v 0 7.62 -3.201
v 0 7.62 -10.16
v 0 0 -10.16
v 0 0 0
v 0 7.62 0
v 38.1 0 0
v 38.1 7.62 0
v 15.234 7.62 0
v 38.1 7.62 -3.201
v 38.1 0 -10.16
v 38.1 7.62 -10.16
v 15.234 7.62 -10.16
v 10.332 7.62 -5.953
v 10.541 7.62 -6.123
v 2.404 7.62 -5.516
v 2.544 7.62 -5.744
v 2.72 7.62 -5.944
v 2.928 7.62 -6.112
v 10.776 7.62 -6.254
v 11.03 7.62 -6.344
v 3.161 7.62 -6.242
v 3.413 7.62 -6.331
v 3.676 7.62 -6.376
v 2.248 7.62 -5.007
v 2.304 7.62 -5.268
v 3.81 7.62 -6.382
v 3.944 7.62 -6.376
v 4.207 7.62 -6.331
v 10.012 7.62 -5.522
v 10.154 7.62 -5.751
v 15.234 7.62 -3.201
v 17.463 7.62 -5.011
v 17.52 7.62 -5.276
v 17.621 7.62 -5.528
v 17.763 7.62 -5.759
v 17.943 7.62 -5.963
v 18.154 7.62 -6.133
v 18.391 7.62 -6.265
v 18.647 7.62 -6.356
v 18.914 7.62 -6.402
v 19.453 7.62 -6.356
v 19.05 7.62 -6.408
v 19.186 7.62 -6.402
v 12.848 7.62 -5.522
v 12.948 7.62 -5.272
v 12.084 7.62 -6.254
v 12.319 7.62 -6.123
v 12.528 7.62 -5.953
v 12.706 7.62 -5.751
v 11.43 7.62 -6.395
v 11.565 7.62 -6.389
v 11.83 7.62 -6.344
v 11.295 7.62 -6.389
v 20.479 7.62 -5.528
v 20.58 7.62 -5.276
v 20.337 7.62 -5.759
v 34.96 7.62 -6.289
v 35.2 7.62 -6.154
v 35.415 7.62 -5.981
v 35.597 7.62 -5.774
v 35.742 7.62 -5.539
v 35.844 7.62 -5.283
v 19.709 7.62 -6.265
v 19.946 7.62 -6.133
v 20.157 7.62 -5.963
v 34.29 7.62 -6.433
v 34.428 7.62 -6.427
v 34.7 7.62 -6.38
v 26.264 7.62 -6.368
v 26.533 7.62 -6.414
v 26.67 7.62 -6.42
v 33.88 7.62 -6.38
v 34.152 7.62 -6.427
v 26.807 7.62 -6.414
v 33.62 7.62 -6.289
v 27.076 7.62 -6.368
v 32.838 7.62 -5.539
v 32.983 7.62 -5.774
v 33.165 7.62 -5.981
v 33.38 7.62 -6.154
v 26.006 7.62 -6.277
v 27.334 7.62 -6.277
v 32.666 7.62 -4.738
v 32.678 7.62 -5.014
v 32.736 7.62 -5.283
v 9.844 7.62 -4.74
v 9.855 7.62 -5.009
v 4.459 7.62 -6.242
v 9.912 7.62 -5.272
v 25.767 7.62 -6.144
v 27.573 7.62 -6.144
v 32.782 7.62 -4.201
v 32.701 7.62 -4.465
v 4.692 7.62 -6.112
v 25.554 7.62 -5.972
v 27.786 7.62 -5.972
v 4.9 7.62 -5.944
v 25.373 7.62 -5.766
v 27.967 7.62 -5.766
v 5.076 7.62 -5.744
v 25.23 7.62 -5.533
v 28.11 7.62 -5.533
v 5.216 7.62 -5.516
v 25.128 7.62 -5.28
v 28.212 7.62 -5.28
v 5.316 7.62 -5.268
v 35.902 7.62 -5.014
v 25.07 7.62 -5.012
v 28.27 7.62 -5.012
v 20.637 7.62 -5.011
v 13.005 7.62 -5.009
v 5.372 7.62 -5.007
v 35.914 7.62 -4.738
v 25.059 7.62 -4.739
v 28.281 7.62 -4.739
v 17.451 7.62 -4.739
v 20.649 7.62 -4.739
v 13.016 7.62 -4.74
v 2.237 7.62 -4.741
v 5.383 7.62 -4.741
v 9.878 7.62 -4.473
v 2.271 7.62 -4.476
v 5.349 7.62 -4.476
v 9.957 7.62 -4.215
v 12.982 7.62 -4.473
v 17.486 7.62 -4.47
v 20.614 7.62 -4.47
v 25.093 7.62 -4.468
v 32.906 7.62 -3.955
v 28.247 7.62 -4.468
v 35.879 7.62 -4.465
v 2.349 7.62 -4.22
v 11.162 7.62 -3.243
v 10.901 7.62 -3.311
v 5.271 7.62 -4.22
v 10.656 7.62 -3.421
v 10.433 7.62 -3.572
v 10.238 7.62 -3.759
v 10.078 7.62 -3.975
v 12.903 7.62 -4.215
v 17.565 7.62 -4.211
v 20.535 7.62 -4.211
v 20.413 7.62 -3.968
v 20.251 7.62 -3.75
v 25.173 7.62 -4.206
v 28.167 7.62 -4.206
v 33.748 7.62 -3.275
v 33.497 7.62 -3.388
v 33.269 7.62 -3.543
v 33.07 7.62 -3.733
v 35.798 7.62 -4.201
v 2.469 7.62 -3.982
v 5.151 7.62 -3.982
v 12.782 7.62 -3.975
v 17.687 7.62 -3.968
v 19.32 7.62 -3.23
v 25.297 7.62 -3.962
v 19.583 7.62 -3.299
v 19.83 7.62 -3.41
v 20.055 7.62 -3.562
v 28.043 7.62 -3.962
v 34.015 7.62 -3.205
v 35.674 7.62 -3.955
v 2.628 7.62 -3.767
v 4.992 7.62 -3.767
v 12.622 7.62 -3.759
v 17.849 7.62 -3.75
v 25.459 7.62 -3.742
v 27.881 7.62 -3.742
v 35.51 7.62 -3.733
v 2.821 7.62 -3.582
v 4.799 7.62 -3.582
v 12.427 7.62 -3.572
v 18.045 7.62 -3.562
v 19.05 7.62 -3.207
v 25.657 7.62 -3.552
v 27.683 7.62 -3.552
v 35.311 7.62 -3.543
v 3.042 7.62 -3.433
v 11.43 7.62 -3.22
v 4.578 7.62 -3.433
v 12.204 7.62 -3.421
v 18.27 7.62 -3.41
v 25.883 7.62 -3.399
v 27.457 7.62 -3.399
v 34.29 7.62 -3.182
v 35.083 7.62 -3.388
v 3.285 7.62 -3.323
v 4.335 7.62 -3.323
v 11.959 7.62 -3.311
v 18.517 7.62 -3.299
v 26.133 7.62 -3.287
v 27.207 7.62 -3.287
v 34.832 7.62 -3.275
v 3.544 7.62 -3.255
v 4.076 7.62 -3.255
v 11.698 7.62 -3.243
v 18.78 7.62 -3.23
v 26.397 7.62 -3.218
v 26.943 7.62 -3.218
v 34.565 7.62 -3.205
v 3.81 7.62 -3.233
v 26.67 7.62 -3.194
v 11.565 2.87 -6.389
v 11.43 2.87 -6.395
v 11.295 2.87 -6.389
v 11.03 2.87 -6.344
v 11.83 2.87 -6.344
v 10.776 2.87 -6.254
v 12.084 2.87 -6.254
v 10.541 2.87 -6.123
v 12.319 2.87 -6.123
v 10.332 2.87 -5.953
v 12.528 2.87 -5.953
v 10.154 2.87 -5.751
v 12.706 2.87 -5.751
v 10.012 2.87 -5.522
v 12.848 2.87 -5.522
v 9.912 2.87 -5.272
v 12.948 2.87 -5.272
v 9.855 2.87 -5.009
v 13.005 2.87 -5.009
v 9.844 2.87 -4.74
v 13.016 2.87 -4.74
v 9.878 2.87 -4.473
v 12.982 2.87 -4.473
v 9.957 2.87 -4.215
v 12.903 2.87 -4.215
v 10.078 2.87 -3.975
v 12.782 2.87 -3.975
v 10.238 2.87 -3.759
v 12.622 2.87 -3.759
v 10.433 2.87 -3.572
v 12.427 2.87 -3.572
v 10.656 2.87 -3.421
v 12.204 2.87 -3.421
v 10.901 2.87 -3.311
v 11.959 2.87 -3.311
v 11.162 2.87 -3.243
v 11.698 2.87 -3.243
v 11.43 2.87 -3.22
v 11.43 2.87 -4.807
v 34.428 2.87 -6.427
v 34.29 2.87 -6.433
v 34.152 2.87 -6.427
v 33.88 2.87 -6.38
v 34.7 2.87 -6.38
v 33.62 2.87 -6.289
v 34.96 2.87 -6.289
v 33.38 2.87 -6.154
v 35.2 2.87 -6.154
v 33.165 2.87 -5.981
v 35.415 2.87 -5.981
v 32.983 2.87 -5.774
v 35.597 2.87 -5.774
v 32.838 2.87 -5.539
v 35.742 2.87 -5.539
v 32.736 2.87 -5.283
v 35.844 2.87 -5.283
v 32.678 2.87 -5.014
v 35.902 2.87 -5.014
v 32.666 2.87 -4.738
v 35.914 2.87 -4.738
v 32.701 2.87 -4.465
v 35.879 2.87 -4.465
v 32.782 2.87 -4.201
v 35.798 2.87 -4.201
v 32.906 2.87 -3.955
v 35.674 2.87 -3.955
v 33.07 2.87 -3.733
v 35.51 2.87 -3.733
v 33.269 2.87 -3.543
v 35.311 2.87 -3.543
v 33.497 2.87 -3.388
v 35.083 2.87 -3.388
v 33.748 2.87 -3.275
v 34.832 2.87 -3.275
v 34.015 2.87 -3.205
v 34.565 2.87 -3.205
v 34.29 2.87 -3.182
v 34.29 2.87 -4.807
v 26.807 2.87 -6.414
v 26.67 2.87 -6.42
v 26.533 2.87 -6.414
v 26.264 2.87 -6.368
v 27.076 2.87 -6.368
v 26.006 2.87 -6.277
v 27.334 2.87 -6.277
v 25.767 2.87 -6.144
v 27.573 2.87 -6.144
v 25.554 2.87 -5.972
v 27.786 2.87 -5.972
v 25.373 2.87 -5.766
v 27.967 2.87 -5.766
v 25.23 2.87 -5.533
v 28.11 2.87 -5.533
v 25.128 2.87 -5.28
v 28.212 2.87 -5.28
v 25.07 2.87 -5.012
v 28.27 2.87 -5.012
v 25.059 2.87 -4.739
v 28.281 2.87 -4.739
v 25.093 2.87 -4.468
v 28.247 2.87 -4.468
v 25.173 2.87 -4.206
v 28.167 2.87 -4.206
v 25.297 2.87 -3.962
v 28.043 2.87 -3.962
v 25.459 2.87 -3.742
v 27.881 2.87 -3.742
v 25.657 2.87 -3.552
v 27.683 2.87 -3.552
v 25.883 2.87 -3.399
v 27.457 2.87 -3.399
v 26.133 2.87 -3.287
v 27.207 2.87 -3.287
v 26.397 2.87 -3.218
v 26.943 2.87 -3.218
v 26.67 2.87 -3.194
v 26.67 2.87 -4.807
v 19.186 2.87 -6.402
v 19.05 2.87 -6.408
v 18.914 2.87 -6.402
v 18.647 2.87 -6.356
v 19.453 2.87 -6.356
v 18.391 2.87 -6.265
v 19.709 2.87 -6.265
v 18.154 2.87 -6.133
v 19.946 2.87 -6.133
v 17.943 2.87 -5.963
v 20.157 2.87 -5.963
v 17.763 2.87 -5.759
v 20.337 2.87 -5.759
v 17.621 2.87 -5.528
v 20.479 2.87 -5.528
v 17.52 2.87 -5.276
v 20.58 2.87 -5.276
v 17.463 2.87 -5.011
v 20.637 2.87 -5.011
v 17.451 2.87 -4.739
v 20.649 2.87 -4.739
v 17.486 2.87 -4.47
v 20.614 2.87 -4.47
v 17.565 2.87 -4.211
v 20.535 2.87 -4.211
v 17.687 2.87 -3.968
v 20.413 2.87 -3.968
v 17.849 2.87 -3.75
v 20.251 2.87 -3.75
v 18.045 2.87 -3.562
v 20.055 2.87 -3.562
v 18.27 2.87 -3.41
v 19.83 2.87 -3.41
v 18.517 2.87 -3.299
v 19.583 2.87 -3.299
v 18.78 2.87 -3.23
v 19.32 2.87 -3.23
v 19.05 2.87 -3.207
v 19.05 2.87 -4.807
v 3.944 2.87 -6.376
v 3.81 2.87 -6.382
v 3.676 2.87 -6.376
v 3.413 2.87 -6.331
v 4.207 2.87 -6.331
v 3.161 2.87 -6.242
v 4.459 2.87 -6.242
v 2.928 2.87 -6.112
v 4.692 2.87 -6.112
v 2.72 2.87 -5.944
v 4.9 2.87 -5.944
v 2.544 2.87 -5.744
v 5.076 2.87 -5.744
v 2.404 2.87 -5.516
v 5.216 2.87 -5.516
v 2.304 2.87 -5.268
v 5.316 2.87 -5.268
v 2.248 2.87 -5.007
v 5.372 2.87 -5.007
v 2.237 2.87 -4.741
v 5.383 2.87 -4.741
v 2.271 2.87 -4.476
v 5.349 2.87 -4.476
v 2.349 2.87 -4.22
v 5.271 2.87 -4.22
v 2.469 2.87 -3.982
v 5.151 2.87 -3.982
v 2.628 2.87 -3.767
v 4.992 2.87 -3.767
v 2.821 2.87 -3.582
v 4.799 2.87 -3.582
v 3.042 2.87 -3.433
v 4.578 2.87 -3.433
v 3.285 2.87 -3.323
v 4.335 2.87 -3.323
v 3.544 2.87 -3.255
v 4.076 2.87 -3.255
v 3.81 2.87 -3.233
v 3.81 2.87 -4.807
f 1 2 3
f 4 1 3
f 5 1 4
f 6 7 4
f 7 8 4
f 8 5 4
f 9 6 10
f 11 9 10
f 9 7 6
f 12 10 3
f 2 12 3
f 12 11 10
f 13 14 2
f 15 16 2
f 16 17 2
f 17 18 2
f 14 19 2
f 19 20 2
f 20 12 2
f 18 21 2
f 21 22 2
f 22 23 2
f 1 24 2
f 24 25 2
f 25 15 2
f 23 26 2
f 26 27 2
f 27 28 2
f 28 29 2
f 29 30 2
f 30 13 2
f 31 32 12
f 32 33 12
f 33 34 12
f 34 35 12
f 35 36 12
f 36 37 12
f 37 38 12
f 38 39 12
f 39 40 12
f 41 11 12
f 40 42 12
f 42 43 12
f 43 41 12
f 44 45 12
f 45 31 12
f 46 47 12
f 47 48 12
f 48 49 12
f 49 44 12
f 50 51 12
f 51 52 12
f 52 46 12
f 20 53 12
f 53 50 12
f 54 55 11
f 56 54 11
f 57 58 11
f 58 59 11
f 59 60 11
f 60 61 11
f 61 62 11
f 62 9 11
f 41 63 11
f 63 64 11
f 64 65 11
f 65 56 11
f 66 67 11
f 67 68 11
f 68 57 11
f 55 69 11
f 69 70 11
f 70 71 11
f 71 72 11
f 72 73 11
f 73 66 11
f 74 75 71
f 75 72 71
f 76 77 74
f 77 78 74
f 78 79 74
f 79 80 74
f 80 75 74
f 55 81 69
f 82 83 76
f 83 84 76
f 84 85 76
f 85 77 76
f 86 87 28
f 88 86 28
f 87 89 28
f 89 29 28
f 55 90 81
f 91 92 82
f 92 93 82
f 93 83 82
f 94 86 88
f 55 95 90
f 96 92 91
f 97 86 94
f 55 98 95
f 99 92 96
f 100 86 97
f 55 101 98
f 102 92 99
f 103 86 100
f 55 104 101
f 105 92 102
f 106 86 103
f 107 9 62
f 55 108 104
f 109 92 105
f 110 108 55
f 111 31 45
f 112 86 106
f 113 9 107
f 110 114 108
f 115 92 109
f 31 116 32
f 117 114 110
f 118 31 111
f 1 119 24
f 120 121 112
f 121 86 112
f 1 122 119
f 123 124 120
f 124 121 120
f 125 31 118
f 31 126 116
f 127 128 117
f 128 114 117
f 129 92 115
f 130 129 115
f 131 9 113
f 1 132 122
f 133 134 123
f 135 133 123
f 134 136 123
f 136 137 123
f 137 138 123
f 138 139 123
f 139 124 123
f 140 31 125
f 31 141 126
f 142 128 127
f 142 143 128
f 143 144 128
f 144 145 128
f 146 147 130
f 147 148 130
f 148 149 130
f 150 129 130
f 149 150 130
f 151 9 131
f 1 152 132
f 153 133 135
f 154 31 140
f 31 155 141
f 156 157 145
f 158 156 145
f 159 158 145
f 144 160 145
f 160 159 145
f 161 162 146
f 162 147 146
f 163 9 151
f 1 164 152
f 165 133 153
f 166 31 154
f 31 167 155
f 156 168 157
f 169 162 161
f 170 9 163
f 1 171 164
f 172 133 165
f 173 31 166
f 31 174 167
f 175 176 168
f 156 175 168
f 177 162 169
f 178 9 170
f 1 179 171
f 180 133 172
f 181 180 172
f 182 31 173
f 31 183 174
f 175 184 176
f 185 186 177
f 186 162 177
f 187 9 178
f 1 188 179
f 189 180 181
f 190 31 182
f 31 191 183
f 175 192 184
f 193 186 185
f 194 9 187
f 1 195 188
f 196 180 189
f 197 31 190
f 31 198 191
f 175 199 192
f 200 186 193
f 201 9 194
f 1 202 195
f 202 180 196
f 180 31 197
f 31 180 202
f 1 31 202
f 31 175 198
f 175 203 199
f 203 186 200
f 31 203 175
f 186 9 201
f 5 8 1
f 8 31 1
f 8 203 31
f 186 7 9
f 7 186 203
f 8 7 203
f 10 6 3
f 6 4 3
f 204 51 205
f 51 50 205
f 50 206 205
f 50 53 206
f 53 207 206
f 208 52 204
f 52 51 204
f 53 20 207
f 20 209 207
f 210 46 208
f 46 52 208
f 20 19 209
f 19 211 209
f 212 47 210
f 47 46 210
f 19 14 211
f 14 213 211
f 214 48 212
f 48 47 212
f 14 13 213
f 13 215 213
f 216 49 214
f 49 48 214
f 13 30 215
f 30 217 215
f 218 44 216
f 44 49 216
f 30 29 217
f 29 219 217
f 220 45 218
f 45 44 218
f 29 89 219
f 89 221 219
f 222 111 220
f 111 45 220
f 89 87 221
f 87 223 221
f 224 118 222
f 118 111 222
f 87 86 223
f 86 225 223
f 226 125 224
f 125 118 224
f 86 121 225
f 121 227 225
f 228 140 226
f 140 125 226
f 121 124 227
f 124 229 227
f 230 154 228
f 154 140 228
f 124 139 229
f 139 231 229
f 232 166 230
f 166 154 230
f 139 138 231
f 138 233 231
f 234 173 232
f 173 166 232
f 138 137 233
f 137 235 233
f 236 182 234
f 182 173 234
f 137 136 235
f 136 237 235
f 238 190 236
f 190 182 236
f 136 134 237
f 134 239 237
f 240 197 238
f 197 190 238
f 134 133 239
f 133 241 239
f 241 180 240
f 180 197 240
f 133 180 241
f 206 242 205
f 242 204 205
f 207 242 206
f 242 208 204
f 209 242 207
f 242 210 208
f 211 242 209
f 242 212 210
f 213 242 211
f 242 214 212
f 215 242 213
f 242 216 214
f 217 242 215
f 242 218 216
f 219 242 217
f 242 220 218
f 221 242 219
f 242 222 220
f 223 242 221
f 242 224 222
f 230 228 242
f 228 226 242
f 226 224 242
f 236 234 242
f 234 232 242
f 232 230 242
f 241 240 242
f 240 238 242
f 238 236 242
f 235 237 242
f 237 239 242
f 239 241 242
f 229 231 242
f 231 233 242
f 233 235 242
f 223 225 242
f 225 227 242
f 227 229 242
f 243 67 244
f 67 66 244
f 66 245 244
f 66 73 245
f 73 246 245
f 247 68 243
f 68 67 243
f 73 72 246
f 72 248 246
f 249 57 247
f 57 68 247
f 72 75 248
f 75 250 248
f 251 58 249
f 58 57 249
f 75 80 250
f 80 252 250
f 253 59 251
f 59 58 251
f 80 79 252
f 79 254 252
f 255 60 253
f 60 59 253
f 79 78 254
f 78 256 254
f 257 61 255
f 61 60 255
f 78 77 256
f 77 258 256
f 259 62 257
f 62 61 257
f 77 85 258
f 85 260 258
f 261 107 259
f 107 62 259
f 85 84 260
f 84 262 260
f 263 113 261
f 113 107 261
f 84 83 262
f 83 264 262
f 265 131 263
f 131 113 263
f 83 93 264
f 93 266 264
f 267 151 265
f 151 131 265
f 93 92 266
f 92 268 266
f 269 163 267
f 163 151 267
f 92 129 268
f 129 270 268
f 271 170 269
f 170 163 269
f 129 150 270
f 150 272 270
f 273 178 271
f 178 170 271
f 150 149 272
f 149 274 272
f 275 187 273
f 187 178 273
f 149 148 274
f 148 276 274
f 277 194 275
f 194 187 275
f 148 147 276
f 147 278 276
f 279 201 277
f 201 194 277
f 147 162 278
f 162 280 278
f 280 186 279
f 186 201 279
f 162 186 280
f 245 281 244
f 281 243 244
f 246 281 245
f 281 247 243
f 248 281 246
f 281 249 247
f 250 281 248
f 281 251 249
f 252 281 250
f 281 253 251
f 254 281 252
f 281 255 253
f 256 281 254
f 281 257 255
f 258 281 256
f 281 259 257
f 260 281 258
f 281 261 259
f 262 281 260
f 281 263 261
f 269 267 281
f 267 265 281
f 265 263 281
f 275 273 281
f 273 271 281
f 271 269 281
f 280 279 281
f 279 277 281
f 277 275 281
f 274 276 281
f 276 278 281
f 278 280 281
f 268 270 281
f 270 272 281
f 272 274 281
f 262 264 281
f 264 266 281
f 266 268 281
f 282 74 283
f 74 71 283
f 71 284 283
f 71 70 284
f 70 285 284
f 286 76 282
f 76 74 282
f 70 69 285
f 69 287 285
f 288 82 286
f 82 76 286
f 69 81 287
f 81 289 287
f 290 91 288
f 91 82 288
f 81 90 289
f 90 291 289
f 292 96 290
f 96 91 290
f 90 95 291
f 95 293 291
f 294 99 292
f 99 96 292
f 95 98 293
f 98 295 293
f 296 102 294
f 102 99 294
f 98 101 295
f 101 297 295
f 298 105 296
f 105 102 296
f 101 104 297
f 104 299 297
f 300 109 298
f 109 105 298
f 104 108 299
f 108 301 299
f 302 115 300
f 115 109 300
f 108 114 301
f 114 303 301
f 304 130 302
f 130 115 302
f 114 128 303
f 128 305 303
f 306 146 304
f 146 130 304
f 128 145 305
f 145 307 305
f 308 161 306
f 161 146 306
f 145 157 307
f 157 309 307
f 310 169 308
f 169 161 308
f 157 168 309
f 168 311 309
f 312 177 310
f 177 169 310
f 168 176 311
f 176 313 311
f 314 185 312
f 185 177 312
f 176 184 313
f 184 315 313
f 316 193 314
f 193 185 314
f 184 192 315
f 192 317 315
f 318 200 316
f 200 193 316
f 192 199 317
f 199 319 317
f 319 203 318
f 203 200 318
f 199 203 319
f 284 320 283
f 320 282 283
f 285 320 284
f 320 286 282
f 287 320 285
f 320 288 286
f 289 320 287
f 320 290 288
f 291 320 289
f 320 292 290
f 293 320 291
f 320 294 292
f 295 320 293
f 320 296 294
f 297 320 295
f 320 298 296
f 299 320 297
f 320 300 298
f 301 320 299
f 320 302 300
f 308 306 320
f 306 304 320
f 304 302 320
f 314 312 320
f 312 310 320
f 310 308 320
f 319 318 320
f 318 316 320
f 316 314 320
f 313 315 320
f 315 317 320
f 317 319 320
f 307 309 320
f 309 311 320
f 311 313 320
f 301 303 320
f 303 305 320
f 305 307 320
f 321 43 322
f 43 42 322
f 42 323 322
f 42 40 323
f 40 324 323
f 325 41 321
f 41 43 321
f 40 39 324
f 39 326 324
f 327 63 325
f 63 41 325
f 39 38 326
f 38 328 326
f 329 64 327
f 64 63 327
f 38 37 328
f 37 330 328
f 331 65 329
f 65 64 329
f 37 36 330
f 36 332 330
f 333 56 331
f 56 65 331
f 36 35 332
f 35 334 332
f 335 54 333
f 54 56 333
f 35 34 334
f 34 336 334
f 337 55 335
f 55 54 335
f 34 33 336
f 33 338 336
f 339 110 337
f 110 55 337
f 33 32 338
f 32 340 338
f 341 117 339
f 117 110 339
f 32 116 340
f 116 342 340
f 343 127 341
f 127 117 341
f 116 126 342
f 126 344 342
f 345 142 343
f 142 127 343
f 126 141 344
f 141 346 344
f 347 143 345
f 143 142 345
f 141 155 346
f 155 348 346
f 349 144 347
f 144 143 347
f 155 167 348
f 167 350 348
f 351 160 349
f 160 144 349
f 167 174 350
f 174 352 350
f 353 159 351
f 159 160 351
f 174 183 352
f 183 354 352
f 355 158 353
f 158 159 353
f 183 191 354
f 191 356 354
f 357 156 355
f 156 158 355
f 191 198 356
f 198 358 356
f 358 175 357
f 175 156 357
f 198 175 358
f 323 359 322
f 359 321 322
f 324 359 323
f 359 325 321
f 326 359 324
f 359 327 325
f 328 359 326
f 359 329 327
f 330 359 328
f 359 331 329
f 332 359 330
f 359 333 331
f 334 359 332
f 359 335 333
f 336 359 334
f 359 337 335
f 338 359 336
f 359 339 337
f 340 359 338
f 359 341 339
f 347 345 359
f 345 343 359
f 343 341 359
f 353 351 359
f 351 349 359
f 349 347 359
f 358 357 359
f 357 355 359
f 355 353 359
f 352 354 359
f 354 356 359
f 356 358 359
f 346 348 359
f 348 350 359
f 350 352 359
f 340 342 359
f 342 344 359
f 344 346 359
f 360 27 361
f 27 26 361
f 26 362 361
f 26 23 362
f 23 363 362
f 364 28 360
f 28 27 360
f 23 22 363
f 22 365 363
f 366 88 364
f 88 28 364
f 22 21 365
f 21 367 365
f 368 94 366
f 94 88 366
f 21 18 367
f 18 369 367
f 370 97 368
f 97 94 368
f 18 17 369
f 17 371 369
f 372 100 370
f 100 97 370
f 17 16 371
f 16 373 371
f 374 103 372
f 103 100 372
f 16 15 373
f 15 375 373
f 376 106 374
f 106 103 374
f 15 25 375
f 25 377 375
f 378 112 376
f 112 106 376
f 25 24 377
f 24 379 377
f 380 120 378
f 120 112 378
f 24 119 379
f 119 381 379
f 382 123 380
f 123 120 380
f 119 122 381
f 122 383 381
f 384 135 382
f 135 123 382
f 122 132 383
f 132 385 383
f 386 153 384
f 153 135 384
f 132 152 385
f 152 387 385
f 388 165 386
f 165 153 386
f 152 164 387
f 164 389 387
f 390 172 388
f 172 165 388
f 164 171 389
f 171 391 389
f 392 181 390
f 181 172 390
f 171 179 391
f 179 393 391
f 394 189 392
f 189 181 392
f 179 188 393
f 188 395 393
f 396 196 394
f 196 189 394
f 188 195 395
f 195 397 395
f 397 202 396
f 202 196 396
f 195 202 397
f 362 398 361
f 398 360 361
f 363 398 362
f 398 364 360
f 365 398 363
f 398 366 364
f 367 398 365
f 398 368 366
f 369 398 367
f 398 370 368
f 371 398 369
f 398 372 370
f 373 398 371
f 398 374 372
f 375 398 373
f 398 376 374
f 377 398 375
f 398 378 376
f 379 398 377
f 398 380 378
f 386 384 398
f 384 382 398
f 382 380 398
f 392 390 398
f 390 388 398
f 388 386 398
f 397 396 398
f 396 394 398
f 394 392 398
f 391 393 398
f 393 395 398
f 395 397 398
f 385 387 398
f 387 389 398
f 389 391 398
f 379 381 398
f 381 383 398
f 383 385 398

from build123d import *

# Parameters (mm, degrees)
SKETCH3_W           = 38.1
SKETCH3_H           = 10.16
BOSS_EXTRUDE2_DEPTH = 7.62
CUT_EXTRUDE1_START  = 7.62
SKETCH1_R           = 1.5748
SKETCH1_R_2         = 1.5875
SKETCH1_R_3         = 1.6002
SKETCH1_R_4         = 1.6129
SKETCH1_R_5         = 1.6256
CUT_EXTRUDE1_DEPTH  = 4.7498


with BuildPart() as part:
    # Sketch3 → Boss-Extrude2 (new body)
    with BuildSketch(Plane(origin=(0, 0, 0), x_dir=(1, 0, 0), z_dir=(0, 1, 0))):
        with Locations((19.05, 5.08)):
            Rectangle(SKETCH3_W, SKETCH3_H)
    extrude(amount=BOSS_EXTRUDE2_DEPTH)

    # Sketch1 → Cut-Extrude1 (cut)
    with BuildSketch(Plane(origin=(0, 0, 0), x_dir=(1, 0, 0), z_dir=(0, 1, 0)).offset(CUT_EXTRUDE1_START)):
        with Locations(Location((3.81, 4.807346471, 0), (0, 0, 90))):
            Circle(SKETCH1_R)
        with Locations(Location((11.43, 4.807346471, 0), (0, 0, 90))):
            Circle(SKETCH1_R_2)
        with Locations(Location((19.05, 4.807346471, 0), (0, 0, 90))):
            Circle(SKETCH1_R_3)
        with Locations(Location((26.67, 4.807346471, 0), (0, 0, 90))):
            Circle(SKETCH1_R_4)
        with Locations(Location((34.29, 4.807346471, 0), (0, 0, 90))):
            Circle(SKETCH1_R_5)
    extrude(amount=-CUT_EXTRUDE1_DEPTH, mode=Mode.SUBTRACT)


solid = part.part
